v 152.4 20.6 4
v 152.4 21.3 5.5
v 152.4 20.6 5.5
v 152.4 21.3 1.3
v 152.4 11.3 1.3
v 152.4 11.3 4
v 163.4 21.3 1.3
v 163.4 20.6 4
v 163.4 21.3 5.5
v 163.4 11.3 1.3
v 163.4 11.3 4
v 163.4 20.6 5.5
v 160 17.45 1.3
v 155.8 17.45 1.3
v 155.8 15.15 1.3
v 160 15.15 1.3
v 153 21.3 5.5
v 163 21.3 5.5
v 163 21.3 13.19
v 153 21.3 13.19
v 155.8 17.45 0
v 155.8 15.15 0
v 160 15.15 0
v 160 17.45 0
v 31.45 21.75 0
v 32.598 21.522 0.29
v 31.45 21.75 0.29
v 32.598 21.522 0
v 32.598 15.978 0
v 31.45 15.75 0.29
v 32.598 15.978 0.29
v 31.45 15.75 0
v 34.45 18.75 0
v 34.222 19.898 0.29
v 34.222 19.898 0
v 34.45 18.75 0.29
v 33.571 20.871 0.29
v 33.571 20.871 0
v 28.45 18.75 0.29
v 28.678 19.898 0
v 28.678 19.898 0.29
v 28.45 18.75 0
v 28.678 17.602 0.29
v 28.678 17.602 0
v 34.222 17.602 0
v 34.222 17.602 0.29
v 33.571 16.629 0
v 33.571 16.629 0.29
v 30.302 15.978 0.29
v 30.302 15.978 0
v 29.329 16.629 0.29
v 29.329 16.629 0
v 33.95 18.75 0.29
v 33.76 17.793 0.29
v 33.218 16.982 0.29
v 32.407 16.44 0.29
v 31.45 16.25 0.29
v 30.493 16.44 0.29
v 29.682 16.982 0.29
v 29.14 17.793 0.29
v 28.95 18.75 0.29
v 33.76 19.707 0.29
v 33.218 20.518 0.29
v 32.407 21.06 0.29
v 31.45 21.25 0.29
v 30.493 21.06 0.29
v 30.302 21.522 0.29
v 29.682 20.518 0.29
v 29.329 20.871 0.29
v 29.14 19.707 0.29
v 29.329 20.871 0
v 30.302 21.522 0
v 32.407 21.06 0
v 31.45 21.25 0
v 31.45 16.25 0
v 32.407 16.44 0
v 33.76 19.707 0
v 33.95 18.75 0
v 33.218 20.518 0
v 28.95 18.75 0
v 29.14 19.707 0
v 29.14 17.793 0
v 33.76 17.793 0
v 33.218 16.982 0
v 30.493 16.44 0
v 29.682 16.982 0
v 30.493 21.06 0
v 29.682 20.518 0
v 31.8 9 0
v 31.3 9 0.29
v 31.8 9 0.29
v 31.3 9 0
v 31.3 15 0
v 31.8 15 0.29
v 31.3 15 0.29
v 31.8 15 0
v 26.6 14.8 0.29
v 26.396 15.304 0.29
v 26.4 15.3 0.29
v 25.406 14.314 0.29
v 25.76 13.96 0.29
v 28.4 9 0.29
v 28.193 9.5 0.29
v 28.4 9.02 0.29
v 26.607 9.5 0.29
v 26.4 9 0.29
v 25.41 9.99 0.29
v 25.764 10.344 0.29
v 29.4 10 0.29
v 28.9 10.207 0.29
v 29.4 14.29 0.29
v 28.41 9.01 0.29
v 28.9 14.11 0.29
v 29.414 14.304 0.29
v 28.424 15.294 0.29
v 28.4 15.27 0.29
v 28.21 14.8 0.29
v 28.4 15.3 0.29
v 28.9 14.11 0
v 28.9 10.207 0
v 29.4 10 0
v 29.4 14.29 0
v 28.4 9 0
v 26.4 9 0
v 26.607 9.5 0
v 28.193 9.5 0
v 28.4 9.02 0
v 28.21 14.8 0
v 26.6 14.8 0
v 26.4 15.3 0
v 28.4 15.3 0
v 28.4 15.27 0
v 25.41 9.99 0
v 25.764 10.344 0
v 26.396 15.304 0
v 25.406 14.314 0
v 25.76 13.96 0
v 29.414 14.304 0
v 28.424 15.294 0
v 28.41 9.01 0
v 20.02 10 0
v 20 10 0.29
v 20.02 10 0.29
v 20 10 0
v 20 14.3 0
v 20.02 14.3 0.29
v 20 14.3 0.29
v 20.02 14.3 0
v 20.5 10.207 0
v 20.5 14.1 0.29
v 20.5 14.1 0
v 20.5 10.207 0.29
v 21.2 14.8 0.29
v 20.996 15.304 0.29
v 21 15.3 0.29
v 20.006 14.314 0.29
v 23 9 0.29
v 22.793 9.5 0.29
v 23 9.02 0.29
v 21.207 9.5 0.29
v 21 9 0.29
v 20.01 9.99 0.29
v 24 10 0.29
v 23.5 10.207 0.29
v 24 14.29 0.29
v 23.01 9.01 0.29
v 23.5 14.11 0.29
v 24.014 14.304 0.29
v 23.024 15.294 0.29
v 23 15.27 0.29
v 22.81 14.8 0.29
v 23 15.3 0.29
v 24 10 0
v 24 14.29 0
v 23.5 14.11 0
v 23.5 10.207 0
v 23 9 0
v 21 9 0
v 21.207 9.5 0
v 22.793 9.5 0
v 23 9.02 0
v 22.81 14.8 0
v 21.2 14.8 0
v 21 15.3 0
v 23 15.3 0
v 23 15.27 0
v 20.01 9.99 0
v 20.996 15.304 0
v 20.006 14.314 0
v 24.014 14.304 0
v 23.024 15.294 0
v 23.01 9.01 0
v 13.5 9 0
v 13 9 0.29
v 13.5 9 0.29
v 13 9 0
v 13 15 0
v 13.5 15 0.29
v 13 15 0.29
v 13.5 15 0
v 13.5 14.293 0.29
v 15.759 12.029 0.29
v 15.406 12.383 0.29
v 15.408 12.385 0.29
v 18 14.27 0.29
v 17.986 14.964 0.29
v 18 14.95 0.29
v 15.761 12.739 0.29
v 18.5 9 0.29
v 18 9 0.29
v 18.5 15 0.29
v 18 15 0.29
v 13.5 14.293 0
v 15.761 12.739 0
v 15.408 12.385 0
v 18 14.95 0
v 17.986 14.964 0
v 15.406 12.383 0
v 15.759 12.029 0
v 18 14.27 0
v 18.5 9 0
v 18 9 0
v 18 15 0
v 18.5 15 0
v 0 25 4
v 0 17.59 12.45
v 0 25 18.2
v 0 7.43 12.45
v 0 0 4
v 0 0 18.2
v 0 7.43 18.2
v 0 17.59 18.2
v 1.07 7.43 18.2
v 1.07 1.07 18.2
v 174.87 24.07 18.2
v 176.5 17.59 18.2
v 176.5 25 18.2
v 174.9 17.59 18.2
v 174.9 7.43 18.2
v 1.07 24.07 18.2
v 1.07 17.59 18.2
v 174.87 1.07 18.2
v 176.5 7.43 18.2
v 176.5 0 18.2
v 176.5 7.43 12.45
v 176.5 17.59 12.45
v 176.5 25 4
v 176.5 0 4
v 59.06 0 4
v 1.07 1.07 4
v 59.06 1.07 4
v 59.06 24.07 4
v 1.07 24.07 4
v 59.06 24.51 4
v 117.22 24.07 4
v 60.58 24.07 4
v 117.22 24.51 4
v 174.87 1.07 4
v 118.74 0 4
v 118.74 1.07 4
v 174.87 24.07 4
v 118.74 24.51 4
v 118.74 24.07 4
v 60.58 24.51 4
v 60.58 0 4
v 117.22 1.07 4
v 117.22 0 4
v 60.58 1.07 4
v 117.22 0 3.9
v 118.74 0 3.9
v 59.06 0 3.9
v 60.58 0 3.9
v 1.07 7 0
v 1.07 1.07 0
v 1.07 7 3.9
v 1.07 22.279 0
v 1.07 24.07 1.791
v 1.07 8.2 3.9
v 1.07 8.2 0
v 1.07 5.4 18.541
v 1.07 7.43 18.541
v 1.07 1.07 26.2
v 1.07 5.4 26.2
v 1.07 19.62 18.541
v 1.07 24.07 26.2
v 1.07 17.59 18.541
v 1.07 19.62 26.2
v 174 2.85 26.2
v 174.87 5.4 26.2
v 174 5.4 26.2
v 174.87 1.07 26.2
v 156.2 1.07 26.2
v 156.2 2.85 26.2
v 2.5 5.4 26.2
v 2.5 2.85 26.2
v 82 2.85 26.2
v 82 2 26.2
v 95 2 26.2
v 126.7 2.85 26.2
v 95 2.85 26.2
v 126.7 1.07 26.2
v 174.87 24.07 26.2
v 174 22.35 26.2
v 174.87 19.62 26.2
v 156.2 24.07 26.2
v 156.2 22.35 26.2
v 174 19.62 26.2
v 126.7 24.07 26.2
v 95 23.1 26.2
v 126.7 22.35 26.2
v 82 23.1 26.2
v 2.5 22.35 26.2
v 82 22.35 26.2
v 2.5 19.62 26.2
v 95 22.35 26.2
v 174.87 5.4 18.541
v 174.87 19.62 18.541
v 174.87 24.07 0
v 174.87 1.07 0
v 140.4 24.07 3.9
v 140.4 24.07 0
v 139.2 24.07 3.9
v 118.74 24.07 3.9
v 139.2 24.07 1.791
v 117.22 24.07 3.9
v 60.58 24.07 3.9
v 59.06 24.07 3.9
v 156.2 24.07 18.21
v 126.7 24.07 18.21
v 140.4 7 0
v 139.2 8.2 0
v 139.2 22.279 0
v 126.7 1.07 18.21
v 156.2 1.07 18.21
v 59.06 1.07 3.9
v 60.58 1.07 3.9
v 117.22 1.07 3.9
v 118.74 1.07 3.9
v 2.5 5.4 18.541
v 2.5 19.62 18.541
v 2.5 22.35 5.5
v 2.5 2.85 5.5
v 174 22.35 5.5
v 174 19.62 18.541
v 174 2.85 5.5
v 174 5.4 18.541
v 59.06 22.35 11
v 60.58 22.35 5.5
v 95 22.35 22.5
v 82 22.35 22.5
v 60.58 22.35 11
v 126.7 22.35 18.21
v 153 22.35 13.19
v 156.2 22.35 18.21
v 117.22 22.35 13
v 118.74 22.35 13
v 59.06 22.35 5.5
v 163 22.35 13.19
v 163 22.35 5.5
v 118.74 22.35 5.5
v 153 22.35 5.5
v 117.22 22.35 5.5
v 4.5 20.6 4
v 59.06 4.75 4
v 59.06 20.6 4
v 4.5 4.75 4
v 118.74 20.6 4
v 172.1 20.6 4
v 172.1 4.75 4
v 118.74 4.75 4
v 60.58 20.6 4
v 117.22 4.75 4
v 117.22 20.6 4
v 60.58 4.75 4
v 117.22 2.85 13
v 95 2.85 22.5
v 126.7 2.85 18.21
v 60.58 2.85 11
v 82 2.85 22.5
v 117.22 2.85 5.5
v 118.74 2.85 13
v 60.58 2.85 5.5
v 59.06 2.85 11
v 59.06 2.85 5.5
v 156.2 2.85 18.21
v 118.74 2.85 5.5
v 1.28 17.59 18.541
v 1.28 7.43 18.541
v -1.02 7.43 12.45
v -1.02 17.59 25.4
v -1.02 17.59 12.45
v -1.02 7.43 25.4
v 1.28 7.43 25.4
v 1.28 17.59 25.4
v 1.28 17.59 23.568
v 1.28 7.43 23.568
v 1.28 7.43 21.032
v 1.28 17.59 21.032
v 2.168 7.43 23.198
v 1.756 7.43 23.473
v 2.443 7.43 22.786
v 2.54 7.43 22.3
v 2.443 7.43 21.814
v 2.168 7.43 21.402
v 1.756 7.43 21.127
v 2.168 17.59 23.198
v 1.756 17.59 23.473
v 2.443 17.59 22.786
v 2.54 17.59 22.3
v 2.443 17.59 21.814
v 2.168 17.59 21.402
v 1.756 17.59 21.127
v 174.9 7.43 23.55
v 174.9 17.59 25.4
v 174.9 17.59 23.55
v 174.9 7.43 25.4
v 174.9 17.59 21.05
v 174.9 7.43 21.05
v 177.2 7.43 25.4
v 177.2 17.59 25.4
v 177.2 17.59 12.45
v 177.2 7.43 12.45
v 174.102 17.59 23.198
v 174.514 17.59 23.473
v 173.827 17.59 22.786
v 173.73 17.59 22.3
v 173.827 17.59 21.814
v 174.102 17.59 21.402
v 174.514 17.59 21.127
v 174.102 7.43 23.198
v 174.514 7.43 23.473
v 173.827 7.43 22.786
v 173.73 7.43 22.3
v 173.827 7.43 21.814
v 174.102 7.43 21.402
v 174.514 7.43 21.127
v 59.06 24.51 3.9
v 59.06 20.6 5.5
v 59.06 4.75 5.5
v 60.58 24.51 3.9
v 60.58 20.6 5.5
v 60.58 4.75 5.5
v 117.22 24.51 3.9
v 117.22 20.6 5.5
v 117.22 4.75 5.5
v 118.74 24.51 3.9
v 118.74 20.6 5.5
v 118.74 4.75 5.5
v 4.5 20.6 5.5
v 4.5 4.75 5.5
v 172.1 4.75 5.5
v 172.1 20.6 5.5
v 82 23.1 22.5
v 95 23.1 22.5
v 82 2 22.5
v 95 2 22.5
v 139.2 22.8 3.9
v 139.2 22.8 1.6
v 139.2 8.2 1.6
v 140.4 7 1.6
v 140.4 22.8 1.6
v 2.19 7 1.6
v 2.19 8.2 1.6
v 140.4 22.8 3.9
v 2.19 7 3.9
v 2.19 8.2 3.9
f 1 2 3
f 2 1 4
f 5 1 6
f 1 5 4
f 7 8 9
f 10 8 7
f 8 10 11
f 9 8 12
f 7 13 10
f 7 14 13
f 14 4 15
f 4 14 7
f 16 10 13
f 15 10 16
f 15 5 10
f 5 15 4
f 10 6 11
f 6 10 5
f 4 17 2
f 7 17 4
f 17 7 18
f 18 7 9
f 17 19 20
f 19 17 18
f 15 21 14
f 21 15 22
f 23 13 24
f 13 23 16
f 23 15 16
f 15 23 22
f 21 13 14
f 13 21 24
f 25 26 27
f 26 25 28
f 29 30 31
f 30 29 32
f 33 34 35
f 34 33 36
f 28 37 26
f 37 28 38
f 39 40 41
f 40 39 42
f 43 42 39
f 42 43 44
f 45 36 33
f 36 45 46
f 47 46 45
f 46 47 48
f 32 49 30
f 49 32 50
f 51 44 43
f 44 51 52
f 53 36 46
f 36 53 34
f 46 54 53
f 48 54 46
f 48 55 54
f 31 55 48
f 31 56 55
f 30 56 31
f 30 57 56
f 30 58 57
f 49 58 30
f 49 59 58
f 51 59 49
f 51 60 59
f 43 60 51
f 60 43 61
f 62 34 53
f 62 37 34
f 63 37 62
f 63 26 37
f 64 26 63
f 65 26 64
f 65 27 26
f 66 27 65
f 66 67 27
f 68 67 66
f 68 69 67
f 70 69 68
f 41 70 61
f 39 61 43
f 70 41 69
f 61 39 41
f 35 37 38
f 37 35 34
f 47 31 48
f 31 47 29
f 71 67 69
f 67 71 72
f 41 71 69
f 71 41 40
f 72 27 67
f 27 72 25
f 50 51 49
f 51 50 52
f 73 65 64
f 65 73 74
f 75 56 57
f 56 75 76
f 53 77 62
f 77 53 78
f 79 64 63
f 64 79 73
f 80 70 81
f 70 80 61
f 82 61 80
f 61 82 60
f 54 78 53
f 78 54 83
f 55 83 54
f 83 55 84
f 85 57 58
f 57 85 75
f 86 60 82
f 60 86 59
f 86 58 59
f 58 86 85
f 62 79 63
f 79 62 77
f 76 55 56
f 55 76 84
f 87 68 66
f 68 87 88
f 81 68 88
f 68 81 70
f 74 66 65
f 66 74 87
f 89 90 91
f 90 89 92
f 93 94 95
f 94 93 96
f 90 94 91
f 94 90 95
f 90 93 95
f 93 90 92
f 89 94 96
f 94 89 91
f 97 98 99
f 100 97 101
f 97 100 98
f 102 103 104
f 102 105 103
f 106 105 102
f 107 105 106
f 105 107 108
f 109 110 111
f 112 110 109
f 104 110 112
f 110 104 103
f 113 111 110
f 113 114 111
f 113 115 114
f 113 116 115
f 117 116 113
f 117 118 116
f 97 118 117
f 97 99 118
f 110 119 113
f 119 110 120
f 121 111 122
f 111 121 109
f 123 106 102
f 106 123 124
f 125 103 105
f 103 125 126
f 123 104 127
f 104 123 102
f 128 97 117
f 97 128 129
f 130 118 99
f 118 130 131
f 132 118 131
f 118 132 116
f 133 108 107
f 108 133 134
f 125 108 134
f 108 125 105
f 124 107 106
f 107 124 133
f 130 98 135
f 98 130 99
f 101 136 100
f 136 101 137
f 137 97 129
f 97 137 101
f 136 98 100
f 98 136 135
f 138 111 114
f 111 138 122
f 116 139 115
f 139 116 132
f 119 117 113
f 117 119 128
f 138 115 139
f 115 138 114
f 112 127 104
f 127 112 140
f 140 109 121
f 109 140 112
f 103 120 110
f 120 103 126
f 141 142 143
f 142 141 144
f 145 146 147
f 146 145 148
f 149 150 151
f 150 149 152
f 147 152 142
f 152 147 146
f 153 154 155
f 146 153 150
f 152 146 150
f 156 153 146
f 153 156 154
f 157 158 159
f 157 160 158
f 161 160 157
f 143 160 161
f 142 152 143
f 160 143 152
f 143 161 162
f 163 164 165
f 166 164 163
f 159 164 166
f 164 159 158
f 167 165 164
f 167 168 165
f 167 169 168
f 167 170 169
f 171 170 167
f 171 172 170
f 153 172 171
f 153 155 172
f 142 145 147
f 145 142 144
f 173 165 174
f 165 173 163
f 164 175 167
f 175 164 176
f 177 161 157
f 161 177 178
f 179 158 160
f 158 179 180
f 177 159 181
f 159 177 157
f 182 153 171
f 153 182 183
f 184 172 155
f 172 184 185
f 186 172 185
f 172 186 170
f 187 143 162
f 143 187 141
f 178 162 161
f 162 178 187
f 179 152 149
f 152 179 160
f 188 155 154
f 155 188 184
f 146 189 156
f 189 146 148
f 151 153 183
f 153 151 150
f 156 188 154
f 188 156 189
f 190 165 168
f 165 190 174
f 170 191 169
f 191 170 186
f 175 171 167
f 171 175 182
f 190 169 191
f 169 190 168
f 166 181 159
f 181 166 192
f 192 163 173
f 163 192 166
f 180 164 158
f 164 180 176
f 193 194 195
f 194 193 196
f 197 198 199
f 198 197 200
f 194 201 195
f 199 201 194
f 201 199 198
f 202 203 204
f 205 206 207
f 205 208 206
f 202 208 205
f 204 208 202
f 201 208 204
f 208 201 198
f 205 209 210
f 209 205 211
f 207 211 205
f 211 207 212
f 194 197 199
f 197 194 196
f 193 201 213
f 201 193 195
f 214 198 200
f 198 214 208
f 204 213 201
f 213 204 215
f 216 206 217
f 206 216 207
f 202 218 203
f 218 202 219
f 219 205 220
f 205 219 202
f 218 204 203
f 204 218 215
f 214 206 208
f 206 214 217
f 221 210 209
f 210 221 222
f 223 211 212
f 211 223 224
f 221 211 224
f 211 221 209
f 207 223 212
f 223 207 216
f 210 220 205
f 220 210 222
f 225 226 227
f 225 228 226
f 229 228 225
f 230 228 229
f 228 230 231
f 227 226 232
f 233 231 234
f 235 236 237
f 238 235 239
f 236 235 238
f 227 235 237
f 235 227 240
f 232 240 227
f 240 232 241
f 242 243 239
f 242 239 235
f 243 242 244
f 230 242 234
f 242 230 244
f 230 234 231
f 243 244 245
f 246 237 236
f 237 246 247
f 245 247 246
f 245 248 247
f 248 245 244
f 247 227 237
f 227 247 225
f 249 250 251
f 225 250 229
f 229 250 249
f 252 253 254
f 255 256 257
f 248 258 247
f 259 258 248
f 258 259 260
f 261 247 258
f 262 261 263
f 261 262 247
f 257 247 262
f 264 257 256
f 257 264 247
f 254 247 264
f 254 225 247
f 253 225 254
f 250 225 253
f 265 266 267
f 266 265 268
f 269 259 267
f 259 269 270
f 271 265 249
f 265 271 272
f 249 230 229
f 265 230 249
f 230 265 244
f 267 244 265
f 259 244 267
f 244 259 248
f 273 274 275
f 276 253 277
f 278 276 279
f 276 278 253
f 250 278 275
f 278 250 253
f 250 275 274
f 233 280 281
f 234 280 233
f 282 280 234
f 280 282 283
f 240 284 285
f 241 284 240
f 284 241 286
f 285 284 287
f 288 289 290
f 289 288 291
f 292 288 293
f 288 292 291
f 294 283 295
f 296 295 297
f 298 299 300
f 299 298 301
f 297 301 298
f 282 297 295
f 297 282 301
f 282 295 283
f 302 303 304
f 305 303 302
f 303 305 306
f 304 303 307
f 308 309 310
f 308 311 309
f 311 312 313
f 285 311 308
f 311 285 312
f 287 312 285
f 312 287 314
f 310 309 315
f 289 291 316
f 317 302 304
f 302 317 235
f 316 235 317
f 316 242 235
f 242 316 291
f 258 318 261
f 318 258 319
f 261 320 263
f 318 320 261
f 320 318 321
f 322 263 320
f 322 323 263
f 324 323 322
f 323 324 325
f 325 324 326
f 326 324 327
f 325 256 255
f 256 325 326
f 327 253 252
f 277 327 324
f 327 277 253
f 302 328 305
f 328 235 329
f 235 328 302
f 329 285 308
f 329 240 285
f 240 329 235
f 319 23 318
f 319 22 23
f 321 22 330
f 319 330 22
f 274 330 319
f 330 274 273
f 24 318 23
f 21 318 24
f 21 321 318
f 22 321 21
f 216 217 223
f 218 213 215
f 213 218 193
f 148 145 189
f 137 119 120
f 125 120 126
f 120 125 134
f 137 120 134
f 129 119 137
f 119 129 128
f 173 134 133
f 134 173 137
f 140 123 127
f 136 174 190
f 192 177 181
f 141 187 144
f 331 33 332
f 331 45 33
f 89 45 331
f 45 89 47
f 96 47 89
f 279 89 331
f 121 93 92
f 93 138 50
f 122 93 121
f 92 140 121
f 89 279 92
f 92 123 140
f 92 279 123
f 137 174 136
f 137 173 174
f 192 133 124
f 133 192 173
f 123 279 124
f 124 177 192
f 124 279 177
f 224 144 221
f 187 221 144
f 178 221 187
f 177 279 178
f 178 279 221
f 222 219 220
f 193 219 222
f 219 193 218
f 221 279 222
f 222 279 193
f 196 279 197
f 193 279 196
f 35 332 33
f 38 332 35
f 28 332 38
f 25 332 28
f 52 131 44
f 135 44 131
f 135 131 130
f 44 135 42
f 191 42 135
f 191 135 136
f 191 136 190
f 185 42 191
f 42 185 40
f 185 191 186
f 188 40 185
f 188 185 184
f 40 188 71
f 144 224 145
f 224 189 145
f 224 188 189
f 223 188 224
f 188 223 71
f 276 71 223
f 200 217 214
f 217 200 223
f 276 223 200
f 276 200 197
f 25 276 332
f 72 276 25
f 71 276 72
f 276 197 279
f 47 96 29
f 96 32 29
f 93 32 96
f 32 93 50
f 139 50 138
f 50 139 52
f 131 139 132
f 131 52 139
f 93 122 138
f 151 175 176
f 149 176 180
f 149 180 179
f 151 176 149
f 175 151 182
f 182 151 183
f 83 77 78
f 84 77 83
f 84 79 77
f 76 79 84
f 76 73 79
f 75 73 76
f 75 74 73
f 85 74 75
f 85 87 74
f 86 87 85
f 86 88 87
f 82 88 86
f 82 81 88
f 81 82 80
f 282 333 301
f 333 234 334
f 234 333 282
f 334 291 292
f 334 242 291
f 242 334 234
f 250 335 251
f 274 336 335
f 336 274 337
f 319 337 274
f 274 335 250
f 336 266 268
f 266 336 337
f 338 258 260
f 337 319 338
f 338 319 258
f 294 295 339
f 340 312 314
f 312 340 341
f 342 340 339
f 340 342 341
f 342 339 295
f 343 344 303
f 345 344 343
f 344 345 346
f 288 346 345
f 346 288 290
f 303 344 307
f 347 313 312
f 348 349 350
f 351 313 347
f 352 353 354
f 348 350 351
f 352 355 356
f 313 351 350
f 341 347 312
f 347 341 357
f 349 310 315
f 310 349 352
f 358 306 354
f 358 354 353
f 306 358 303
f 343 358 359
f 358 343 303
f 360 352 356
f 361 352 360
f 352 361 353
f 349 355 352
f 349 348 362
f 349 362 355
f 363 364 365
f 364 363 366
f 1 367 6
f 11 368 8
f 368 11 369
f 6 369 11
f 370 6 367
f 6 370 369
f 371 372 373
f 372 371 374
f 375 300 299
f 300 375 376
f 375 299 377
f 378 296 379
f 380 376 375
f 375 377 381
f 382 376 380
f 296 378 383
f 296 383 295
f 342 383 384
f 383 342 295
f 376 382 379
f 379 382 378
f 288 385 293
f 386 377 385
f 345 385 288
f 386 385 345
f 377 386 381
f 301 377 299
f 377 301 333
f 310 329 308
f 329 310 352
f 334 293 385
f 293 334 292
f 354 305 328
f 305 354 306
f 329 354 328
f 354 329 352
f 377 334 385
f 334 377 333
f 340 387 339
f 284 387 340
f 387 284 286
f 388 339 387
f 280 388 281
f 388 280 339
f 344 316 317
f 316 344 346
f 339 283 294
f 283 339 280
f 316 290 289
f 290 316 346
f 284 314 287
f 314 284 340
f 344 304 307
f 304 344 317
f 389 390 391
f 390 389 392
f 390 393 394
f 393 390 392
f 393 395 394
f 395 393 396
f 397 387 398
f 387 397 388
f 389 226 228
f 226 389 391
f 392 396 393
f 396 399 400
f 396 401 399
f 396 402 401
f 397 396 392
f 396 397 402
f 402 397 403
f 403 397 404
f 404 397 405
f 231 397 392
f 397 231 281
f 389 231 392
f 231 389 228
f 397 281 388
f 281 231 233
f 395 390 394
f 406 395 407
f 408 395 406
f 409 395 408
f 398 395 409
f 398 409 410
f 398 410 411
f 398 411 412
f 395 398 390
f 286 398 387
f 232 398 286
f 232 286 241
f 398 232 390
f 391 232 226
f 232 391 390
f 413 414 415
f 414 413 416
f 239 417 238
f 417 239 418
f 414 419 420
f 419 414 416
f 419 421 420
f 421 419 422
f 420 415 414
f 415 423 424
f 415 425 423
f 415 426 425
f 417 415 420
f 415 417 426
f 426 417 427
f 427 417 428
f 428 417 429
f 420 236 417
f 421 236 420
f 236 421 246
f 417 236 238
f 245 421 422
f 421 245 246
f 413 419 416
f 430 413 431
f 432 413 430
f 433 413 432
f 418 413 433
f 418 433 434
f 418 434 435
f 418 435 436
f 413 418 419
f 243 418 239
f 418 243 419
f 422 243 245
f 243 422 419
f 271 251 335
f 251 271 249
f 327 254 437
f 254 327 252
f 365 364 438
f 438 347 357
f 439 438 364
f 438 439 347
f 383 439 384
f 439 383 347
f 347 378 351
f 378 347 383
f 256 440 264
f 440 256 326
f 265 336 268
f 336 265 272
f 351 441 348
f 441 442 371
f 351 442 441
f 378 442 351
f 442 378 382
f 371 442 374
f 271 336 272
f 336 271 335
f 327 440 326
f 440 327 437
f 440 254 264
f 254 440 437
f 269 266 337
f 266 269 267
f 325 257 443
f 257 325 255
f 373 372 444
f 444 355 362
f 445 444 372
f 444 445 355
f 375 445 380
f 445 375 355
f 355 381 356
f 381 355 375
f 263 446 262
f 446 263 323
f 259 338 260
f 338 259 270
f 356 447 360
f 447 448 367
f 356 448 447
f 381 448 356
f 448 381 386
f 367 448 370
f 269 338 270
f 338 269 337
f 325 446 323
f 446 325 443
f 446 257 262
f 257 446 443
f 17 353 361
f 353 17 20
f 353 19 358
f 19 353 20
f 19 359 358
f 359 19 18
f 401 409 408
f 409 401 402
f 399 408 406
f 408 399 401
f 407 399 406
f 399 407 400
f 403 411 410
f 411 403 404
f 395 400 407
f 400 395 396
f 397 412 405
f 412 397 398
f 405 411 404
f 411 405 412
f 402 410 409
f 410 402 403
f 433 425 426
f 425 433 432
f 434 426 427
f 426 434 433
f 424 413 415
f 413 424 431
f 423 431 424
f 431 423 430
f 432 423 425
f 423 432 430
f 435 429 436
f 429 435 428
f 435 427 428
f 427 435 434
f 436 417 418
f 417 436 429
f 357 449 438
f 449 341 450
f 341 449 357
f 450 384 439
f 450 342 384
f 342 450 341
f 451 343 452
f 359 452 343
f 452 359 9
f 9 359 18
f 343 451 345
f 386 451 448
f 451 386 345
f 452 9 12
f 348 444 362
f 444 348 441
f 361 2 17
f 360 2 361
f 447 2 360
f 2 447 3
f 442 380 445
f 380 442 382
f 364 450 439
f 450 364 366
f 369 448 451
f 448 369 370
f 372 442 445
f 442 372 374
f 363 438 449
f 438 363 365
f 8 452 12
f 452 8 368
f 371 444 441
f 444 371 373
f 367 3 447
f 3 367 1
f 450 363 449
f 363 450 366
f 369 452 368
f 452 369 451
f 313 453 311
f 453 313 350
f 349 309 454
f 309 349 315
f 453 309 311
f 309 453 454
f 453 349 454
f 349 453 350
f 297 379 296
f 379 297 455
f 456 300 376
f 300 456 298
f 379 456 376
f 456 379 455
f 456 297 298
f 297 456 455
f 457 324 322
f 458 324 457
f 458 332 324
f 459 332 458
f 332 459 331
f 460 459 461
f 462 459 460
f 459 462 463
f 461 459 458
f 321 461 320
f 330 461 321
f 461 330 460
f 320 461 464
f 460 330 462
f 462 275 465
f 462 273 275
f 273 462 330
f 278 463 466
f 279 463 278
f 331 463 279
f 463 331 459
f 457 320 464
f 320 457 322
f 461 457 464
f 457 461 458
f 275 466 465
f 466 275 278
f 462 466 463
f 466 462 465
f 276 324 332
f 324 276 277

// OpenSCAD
// OpenSCAD 2019.05
// UXFFront Unit cover, REV-003
// Joe Haas, KE0FF, 01/13/2021
// This is a decent approximation of the ICOM UX module front cover piece.  It has an added hole
//	for a DB-9 connector to mate with the UX-FFront unit in Stand-Alone RX mode.  To remove the
//	DB-9 artifacts, comment-out the section identified as "DB-9 Artifacts".
// The "LED Opening" is modeled as a round hole to accept a light pipe for an SMD LED (as implemented
//	on the FFront unit PCB).  To match the original ICOM format, a rectangular hole is needed.
//	comment out the light-pipe section and then un-comment the rectangular hole section to generate
//	the original ICOM opening.
//
// Rev-004, 01/29/2021
// Added user-defined parameters ("light_pipe", "place_db9", and "delta_h").  These parameters allow for
//	quick modifications to some common options.  For a "standard" cover, set the parameters as follows:
//		light_pipe = 0;
//		place_db9 = 0;
//		delta_h = 0;
//
// Comment cleanup.
//
// Fixed detent#2 placement.

use <char.scad>

//----------------------------------------------------------------------------------------------------------------------
// User defined parameters.  Modify these to suit a particular application
// NOTE: All data in this file is in mm

light_pipe = 0;						// zero places standard rectangular LED hole, non-zero places light-pipe opening
place_db9 = 0;						// non-zero to place the DB-9 cut-out
delta_h = 0;						// stretch height parameter.  Use this to make a deeper cover for UXFF applications

//----------------------------------------------------------------------------------------------------------------------
// parametric variables:
shroud_height = 26.2 + delta_h;
main_height = shroud_height - 12;

difference(){
	union(){
	  difference(){
		union(){
		  translate([0,0,4]) cube([176.5,25,main_height]);				// bottom section of main body
		  translate([1.07,1.07,0]) cube([173.8,23,shroud_height]);		// top section (the shroud)
		  translate([126,1.07,0]) cube([27,23,10]);						// cable break section
		}
		translate([2.5,2.85,4]) cube([171.5,19.5,42.26]);				// main central void
		translate([126.7,-1,18.21+delta_h]) cube([29.5,30,30]);			// cable break void
		translate([0,5.40,18.541+delta_h]) cube([177.8,14.22,8]);		// void at the ends of the shroud
	// DB-9 Artifacts -->
		if(place_db9){
			translate([79.68,8.1,-1]) cube([18.44,10.06,10]);			// DB9 cutout
			translate([72.9,6.19,2.3]) cube([32,14,4.1]);				// DB9 CM
			translate([76.20,13.19,-1]) cylinder(r=1.6, h=10, $fn=16);	// db9 holes, #1
			translate([101.60,13.19,-1]) cylinder(r=1.6, h=10, $fn=16);	//		#2
		}
	// --> End of DB-9 artifacts
	  }
	  translate([-1.02,7.43,12.45+delta_h]) cube([2.3,10.16,12.95]);	// end tab
	  translate([174.9,7.43,12.45+delta_h]) cube([2.3,10.16,12.95]);	// end tab
	  translate([59.06,0,3.9]) cube([1.52,24.51,7.1]);					// re-enforcing rib #1
	  translate([117.22,0,3.9]) cube([1.52,24.51,9.1]);					// re-enforcing rib #2
	  translate([153,12.99,2]) cube([10,10,11.19]);						// light-pipe support
	  rotate([90,0,0]){
		translate([1.27,22.3+delta_h,-12.51]) cylinder(r=1.27, h=10.16, $fn=16, center = true);		// end tab detent #1
	  }
	  rotate([90,0,0]){
		translate([175,22.3+delta_h,-12.51]) cylinder(r=1.27, h=10.16, $fn=16, center = true);		// end tab detent #2
	  }
	  translate([2.5,2.75,4]) cube([171.5,2,1.5]);						// corner reinforce (bot)
	  translate([2.5,20.6,4]) cube([171.5,2.1,1.5]);					// corner reinforce (top)
	  translate([2.5,2.75,4]) cube([2,20.6,1.5]);						// corner reinforce (rs)
	  translate([172.1,2.75,4]) cube([2,20.6,1.5]);						// corner reinforce (ls)
	}
	union(){
		if(light_pipe){
			// Light-pipe hole -->
			translate([157.9,16.3,14]) cylinder(r=1.76, h=30, $fn=16, center = true);		// light pipe hole
			translate([157.9,16.3,-.10]) cylinder(r=2.73, h=1.75, $fn=16, center = true);	// light pipe countersink
			// --> End of light-pipe hole
		}else{
			// rectangular LED hole -->
			translate([157.9,16.3,14]) cube([11,10,25.4], center = true);		// LED "pan"
			translate([157.9,16.3,14]) cube([4.2,2.3,30], center = true);		// LED "hole"
			// --> End of rectangular LED hole
		}
	}
	translate([82,19.1,22.5+delta_h]) cube([13,4,5]);					// center tab clearance 1
	translate([82,2,22.5+delta_h]) cube([13,4,5]);						// center tab clearance 2
	translate([139.2,7,-.1]) cube([1.2,20,1.7]);						// decorative slot 1
	translate([0,7,-.1])   cube([140.1,1.2,1.7]);						// decorative slot 2
	translate([139.2,22.8,-.1]) cube([1.2,1.7,4]);						// decorative slot 3
	translate([.99,7,-.1])   cube([1.2,1.2,4]);							// decorative slot 4
	translate([-1,25.25,-4.1]) rotate([45,0,0]) cube([141.1,4,5]);		// decorative chamfer
	translate([30,9,.29]) rotate([180,0,90]) union(){
		char_CIRCLEI();
		translate([0,-4.6,0]) char_C();
		translate([0,-10,0]) char_O();
		translate([0,-17,0]) char_M();
	}

//  translate([-10,-10,-10]) cube([50,50,50]);					// section cut (leave commented-out unless needed for debug)
}
